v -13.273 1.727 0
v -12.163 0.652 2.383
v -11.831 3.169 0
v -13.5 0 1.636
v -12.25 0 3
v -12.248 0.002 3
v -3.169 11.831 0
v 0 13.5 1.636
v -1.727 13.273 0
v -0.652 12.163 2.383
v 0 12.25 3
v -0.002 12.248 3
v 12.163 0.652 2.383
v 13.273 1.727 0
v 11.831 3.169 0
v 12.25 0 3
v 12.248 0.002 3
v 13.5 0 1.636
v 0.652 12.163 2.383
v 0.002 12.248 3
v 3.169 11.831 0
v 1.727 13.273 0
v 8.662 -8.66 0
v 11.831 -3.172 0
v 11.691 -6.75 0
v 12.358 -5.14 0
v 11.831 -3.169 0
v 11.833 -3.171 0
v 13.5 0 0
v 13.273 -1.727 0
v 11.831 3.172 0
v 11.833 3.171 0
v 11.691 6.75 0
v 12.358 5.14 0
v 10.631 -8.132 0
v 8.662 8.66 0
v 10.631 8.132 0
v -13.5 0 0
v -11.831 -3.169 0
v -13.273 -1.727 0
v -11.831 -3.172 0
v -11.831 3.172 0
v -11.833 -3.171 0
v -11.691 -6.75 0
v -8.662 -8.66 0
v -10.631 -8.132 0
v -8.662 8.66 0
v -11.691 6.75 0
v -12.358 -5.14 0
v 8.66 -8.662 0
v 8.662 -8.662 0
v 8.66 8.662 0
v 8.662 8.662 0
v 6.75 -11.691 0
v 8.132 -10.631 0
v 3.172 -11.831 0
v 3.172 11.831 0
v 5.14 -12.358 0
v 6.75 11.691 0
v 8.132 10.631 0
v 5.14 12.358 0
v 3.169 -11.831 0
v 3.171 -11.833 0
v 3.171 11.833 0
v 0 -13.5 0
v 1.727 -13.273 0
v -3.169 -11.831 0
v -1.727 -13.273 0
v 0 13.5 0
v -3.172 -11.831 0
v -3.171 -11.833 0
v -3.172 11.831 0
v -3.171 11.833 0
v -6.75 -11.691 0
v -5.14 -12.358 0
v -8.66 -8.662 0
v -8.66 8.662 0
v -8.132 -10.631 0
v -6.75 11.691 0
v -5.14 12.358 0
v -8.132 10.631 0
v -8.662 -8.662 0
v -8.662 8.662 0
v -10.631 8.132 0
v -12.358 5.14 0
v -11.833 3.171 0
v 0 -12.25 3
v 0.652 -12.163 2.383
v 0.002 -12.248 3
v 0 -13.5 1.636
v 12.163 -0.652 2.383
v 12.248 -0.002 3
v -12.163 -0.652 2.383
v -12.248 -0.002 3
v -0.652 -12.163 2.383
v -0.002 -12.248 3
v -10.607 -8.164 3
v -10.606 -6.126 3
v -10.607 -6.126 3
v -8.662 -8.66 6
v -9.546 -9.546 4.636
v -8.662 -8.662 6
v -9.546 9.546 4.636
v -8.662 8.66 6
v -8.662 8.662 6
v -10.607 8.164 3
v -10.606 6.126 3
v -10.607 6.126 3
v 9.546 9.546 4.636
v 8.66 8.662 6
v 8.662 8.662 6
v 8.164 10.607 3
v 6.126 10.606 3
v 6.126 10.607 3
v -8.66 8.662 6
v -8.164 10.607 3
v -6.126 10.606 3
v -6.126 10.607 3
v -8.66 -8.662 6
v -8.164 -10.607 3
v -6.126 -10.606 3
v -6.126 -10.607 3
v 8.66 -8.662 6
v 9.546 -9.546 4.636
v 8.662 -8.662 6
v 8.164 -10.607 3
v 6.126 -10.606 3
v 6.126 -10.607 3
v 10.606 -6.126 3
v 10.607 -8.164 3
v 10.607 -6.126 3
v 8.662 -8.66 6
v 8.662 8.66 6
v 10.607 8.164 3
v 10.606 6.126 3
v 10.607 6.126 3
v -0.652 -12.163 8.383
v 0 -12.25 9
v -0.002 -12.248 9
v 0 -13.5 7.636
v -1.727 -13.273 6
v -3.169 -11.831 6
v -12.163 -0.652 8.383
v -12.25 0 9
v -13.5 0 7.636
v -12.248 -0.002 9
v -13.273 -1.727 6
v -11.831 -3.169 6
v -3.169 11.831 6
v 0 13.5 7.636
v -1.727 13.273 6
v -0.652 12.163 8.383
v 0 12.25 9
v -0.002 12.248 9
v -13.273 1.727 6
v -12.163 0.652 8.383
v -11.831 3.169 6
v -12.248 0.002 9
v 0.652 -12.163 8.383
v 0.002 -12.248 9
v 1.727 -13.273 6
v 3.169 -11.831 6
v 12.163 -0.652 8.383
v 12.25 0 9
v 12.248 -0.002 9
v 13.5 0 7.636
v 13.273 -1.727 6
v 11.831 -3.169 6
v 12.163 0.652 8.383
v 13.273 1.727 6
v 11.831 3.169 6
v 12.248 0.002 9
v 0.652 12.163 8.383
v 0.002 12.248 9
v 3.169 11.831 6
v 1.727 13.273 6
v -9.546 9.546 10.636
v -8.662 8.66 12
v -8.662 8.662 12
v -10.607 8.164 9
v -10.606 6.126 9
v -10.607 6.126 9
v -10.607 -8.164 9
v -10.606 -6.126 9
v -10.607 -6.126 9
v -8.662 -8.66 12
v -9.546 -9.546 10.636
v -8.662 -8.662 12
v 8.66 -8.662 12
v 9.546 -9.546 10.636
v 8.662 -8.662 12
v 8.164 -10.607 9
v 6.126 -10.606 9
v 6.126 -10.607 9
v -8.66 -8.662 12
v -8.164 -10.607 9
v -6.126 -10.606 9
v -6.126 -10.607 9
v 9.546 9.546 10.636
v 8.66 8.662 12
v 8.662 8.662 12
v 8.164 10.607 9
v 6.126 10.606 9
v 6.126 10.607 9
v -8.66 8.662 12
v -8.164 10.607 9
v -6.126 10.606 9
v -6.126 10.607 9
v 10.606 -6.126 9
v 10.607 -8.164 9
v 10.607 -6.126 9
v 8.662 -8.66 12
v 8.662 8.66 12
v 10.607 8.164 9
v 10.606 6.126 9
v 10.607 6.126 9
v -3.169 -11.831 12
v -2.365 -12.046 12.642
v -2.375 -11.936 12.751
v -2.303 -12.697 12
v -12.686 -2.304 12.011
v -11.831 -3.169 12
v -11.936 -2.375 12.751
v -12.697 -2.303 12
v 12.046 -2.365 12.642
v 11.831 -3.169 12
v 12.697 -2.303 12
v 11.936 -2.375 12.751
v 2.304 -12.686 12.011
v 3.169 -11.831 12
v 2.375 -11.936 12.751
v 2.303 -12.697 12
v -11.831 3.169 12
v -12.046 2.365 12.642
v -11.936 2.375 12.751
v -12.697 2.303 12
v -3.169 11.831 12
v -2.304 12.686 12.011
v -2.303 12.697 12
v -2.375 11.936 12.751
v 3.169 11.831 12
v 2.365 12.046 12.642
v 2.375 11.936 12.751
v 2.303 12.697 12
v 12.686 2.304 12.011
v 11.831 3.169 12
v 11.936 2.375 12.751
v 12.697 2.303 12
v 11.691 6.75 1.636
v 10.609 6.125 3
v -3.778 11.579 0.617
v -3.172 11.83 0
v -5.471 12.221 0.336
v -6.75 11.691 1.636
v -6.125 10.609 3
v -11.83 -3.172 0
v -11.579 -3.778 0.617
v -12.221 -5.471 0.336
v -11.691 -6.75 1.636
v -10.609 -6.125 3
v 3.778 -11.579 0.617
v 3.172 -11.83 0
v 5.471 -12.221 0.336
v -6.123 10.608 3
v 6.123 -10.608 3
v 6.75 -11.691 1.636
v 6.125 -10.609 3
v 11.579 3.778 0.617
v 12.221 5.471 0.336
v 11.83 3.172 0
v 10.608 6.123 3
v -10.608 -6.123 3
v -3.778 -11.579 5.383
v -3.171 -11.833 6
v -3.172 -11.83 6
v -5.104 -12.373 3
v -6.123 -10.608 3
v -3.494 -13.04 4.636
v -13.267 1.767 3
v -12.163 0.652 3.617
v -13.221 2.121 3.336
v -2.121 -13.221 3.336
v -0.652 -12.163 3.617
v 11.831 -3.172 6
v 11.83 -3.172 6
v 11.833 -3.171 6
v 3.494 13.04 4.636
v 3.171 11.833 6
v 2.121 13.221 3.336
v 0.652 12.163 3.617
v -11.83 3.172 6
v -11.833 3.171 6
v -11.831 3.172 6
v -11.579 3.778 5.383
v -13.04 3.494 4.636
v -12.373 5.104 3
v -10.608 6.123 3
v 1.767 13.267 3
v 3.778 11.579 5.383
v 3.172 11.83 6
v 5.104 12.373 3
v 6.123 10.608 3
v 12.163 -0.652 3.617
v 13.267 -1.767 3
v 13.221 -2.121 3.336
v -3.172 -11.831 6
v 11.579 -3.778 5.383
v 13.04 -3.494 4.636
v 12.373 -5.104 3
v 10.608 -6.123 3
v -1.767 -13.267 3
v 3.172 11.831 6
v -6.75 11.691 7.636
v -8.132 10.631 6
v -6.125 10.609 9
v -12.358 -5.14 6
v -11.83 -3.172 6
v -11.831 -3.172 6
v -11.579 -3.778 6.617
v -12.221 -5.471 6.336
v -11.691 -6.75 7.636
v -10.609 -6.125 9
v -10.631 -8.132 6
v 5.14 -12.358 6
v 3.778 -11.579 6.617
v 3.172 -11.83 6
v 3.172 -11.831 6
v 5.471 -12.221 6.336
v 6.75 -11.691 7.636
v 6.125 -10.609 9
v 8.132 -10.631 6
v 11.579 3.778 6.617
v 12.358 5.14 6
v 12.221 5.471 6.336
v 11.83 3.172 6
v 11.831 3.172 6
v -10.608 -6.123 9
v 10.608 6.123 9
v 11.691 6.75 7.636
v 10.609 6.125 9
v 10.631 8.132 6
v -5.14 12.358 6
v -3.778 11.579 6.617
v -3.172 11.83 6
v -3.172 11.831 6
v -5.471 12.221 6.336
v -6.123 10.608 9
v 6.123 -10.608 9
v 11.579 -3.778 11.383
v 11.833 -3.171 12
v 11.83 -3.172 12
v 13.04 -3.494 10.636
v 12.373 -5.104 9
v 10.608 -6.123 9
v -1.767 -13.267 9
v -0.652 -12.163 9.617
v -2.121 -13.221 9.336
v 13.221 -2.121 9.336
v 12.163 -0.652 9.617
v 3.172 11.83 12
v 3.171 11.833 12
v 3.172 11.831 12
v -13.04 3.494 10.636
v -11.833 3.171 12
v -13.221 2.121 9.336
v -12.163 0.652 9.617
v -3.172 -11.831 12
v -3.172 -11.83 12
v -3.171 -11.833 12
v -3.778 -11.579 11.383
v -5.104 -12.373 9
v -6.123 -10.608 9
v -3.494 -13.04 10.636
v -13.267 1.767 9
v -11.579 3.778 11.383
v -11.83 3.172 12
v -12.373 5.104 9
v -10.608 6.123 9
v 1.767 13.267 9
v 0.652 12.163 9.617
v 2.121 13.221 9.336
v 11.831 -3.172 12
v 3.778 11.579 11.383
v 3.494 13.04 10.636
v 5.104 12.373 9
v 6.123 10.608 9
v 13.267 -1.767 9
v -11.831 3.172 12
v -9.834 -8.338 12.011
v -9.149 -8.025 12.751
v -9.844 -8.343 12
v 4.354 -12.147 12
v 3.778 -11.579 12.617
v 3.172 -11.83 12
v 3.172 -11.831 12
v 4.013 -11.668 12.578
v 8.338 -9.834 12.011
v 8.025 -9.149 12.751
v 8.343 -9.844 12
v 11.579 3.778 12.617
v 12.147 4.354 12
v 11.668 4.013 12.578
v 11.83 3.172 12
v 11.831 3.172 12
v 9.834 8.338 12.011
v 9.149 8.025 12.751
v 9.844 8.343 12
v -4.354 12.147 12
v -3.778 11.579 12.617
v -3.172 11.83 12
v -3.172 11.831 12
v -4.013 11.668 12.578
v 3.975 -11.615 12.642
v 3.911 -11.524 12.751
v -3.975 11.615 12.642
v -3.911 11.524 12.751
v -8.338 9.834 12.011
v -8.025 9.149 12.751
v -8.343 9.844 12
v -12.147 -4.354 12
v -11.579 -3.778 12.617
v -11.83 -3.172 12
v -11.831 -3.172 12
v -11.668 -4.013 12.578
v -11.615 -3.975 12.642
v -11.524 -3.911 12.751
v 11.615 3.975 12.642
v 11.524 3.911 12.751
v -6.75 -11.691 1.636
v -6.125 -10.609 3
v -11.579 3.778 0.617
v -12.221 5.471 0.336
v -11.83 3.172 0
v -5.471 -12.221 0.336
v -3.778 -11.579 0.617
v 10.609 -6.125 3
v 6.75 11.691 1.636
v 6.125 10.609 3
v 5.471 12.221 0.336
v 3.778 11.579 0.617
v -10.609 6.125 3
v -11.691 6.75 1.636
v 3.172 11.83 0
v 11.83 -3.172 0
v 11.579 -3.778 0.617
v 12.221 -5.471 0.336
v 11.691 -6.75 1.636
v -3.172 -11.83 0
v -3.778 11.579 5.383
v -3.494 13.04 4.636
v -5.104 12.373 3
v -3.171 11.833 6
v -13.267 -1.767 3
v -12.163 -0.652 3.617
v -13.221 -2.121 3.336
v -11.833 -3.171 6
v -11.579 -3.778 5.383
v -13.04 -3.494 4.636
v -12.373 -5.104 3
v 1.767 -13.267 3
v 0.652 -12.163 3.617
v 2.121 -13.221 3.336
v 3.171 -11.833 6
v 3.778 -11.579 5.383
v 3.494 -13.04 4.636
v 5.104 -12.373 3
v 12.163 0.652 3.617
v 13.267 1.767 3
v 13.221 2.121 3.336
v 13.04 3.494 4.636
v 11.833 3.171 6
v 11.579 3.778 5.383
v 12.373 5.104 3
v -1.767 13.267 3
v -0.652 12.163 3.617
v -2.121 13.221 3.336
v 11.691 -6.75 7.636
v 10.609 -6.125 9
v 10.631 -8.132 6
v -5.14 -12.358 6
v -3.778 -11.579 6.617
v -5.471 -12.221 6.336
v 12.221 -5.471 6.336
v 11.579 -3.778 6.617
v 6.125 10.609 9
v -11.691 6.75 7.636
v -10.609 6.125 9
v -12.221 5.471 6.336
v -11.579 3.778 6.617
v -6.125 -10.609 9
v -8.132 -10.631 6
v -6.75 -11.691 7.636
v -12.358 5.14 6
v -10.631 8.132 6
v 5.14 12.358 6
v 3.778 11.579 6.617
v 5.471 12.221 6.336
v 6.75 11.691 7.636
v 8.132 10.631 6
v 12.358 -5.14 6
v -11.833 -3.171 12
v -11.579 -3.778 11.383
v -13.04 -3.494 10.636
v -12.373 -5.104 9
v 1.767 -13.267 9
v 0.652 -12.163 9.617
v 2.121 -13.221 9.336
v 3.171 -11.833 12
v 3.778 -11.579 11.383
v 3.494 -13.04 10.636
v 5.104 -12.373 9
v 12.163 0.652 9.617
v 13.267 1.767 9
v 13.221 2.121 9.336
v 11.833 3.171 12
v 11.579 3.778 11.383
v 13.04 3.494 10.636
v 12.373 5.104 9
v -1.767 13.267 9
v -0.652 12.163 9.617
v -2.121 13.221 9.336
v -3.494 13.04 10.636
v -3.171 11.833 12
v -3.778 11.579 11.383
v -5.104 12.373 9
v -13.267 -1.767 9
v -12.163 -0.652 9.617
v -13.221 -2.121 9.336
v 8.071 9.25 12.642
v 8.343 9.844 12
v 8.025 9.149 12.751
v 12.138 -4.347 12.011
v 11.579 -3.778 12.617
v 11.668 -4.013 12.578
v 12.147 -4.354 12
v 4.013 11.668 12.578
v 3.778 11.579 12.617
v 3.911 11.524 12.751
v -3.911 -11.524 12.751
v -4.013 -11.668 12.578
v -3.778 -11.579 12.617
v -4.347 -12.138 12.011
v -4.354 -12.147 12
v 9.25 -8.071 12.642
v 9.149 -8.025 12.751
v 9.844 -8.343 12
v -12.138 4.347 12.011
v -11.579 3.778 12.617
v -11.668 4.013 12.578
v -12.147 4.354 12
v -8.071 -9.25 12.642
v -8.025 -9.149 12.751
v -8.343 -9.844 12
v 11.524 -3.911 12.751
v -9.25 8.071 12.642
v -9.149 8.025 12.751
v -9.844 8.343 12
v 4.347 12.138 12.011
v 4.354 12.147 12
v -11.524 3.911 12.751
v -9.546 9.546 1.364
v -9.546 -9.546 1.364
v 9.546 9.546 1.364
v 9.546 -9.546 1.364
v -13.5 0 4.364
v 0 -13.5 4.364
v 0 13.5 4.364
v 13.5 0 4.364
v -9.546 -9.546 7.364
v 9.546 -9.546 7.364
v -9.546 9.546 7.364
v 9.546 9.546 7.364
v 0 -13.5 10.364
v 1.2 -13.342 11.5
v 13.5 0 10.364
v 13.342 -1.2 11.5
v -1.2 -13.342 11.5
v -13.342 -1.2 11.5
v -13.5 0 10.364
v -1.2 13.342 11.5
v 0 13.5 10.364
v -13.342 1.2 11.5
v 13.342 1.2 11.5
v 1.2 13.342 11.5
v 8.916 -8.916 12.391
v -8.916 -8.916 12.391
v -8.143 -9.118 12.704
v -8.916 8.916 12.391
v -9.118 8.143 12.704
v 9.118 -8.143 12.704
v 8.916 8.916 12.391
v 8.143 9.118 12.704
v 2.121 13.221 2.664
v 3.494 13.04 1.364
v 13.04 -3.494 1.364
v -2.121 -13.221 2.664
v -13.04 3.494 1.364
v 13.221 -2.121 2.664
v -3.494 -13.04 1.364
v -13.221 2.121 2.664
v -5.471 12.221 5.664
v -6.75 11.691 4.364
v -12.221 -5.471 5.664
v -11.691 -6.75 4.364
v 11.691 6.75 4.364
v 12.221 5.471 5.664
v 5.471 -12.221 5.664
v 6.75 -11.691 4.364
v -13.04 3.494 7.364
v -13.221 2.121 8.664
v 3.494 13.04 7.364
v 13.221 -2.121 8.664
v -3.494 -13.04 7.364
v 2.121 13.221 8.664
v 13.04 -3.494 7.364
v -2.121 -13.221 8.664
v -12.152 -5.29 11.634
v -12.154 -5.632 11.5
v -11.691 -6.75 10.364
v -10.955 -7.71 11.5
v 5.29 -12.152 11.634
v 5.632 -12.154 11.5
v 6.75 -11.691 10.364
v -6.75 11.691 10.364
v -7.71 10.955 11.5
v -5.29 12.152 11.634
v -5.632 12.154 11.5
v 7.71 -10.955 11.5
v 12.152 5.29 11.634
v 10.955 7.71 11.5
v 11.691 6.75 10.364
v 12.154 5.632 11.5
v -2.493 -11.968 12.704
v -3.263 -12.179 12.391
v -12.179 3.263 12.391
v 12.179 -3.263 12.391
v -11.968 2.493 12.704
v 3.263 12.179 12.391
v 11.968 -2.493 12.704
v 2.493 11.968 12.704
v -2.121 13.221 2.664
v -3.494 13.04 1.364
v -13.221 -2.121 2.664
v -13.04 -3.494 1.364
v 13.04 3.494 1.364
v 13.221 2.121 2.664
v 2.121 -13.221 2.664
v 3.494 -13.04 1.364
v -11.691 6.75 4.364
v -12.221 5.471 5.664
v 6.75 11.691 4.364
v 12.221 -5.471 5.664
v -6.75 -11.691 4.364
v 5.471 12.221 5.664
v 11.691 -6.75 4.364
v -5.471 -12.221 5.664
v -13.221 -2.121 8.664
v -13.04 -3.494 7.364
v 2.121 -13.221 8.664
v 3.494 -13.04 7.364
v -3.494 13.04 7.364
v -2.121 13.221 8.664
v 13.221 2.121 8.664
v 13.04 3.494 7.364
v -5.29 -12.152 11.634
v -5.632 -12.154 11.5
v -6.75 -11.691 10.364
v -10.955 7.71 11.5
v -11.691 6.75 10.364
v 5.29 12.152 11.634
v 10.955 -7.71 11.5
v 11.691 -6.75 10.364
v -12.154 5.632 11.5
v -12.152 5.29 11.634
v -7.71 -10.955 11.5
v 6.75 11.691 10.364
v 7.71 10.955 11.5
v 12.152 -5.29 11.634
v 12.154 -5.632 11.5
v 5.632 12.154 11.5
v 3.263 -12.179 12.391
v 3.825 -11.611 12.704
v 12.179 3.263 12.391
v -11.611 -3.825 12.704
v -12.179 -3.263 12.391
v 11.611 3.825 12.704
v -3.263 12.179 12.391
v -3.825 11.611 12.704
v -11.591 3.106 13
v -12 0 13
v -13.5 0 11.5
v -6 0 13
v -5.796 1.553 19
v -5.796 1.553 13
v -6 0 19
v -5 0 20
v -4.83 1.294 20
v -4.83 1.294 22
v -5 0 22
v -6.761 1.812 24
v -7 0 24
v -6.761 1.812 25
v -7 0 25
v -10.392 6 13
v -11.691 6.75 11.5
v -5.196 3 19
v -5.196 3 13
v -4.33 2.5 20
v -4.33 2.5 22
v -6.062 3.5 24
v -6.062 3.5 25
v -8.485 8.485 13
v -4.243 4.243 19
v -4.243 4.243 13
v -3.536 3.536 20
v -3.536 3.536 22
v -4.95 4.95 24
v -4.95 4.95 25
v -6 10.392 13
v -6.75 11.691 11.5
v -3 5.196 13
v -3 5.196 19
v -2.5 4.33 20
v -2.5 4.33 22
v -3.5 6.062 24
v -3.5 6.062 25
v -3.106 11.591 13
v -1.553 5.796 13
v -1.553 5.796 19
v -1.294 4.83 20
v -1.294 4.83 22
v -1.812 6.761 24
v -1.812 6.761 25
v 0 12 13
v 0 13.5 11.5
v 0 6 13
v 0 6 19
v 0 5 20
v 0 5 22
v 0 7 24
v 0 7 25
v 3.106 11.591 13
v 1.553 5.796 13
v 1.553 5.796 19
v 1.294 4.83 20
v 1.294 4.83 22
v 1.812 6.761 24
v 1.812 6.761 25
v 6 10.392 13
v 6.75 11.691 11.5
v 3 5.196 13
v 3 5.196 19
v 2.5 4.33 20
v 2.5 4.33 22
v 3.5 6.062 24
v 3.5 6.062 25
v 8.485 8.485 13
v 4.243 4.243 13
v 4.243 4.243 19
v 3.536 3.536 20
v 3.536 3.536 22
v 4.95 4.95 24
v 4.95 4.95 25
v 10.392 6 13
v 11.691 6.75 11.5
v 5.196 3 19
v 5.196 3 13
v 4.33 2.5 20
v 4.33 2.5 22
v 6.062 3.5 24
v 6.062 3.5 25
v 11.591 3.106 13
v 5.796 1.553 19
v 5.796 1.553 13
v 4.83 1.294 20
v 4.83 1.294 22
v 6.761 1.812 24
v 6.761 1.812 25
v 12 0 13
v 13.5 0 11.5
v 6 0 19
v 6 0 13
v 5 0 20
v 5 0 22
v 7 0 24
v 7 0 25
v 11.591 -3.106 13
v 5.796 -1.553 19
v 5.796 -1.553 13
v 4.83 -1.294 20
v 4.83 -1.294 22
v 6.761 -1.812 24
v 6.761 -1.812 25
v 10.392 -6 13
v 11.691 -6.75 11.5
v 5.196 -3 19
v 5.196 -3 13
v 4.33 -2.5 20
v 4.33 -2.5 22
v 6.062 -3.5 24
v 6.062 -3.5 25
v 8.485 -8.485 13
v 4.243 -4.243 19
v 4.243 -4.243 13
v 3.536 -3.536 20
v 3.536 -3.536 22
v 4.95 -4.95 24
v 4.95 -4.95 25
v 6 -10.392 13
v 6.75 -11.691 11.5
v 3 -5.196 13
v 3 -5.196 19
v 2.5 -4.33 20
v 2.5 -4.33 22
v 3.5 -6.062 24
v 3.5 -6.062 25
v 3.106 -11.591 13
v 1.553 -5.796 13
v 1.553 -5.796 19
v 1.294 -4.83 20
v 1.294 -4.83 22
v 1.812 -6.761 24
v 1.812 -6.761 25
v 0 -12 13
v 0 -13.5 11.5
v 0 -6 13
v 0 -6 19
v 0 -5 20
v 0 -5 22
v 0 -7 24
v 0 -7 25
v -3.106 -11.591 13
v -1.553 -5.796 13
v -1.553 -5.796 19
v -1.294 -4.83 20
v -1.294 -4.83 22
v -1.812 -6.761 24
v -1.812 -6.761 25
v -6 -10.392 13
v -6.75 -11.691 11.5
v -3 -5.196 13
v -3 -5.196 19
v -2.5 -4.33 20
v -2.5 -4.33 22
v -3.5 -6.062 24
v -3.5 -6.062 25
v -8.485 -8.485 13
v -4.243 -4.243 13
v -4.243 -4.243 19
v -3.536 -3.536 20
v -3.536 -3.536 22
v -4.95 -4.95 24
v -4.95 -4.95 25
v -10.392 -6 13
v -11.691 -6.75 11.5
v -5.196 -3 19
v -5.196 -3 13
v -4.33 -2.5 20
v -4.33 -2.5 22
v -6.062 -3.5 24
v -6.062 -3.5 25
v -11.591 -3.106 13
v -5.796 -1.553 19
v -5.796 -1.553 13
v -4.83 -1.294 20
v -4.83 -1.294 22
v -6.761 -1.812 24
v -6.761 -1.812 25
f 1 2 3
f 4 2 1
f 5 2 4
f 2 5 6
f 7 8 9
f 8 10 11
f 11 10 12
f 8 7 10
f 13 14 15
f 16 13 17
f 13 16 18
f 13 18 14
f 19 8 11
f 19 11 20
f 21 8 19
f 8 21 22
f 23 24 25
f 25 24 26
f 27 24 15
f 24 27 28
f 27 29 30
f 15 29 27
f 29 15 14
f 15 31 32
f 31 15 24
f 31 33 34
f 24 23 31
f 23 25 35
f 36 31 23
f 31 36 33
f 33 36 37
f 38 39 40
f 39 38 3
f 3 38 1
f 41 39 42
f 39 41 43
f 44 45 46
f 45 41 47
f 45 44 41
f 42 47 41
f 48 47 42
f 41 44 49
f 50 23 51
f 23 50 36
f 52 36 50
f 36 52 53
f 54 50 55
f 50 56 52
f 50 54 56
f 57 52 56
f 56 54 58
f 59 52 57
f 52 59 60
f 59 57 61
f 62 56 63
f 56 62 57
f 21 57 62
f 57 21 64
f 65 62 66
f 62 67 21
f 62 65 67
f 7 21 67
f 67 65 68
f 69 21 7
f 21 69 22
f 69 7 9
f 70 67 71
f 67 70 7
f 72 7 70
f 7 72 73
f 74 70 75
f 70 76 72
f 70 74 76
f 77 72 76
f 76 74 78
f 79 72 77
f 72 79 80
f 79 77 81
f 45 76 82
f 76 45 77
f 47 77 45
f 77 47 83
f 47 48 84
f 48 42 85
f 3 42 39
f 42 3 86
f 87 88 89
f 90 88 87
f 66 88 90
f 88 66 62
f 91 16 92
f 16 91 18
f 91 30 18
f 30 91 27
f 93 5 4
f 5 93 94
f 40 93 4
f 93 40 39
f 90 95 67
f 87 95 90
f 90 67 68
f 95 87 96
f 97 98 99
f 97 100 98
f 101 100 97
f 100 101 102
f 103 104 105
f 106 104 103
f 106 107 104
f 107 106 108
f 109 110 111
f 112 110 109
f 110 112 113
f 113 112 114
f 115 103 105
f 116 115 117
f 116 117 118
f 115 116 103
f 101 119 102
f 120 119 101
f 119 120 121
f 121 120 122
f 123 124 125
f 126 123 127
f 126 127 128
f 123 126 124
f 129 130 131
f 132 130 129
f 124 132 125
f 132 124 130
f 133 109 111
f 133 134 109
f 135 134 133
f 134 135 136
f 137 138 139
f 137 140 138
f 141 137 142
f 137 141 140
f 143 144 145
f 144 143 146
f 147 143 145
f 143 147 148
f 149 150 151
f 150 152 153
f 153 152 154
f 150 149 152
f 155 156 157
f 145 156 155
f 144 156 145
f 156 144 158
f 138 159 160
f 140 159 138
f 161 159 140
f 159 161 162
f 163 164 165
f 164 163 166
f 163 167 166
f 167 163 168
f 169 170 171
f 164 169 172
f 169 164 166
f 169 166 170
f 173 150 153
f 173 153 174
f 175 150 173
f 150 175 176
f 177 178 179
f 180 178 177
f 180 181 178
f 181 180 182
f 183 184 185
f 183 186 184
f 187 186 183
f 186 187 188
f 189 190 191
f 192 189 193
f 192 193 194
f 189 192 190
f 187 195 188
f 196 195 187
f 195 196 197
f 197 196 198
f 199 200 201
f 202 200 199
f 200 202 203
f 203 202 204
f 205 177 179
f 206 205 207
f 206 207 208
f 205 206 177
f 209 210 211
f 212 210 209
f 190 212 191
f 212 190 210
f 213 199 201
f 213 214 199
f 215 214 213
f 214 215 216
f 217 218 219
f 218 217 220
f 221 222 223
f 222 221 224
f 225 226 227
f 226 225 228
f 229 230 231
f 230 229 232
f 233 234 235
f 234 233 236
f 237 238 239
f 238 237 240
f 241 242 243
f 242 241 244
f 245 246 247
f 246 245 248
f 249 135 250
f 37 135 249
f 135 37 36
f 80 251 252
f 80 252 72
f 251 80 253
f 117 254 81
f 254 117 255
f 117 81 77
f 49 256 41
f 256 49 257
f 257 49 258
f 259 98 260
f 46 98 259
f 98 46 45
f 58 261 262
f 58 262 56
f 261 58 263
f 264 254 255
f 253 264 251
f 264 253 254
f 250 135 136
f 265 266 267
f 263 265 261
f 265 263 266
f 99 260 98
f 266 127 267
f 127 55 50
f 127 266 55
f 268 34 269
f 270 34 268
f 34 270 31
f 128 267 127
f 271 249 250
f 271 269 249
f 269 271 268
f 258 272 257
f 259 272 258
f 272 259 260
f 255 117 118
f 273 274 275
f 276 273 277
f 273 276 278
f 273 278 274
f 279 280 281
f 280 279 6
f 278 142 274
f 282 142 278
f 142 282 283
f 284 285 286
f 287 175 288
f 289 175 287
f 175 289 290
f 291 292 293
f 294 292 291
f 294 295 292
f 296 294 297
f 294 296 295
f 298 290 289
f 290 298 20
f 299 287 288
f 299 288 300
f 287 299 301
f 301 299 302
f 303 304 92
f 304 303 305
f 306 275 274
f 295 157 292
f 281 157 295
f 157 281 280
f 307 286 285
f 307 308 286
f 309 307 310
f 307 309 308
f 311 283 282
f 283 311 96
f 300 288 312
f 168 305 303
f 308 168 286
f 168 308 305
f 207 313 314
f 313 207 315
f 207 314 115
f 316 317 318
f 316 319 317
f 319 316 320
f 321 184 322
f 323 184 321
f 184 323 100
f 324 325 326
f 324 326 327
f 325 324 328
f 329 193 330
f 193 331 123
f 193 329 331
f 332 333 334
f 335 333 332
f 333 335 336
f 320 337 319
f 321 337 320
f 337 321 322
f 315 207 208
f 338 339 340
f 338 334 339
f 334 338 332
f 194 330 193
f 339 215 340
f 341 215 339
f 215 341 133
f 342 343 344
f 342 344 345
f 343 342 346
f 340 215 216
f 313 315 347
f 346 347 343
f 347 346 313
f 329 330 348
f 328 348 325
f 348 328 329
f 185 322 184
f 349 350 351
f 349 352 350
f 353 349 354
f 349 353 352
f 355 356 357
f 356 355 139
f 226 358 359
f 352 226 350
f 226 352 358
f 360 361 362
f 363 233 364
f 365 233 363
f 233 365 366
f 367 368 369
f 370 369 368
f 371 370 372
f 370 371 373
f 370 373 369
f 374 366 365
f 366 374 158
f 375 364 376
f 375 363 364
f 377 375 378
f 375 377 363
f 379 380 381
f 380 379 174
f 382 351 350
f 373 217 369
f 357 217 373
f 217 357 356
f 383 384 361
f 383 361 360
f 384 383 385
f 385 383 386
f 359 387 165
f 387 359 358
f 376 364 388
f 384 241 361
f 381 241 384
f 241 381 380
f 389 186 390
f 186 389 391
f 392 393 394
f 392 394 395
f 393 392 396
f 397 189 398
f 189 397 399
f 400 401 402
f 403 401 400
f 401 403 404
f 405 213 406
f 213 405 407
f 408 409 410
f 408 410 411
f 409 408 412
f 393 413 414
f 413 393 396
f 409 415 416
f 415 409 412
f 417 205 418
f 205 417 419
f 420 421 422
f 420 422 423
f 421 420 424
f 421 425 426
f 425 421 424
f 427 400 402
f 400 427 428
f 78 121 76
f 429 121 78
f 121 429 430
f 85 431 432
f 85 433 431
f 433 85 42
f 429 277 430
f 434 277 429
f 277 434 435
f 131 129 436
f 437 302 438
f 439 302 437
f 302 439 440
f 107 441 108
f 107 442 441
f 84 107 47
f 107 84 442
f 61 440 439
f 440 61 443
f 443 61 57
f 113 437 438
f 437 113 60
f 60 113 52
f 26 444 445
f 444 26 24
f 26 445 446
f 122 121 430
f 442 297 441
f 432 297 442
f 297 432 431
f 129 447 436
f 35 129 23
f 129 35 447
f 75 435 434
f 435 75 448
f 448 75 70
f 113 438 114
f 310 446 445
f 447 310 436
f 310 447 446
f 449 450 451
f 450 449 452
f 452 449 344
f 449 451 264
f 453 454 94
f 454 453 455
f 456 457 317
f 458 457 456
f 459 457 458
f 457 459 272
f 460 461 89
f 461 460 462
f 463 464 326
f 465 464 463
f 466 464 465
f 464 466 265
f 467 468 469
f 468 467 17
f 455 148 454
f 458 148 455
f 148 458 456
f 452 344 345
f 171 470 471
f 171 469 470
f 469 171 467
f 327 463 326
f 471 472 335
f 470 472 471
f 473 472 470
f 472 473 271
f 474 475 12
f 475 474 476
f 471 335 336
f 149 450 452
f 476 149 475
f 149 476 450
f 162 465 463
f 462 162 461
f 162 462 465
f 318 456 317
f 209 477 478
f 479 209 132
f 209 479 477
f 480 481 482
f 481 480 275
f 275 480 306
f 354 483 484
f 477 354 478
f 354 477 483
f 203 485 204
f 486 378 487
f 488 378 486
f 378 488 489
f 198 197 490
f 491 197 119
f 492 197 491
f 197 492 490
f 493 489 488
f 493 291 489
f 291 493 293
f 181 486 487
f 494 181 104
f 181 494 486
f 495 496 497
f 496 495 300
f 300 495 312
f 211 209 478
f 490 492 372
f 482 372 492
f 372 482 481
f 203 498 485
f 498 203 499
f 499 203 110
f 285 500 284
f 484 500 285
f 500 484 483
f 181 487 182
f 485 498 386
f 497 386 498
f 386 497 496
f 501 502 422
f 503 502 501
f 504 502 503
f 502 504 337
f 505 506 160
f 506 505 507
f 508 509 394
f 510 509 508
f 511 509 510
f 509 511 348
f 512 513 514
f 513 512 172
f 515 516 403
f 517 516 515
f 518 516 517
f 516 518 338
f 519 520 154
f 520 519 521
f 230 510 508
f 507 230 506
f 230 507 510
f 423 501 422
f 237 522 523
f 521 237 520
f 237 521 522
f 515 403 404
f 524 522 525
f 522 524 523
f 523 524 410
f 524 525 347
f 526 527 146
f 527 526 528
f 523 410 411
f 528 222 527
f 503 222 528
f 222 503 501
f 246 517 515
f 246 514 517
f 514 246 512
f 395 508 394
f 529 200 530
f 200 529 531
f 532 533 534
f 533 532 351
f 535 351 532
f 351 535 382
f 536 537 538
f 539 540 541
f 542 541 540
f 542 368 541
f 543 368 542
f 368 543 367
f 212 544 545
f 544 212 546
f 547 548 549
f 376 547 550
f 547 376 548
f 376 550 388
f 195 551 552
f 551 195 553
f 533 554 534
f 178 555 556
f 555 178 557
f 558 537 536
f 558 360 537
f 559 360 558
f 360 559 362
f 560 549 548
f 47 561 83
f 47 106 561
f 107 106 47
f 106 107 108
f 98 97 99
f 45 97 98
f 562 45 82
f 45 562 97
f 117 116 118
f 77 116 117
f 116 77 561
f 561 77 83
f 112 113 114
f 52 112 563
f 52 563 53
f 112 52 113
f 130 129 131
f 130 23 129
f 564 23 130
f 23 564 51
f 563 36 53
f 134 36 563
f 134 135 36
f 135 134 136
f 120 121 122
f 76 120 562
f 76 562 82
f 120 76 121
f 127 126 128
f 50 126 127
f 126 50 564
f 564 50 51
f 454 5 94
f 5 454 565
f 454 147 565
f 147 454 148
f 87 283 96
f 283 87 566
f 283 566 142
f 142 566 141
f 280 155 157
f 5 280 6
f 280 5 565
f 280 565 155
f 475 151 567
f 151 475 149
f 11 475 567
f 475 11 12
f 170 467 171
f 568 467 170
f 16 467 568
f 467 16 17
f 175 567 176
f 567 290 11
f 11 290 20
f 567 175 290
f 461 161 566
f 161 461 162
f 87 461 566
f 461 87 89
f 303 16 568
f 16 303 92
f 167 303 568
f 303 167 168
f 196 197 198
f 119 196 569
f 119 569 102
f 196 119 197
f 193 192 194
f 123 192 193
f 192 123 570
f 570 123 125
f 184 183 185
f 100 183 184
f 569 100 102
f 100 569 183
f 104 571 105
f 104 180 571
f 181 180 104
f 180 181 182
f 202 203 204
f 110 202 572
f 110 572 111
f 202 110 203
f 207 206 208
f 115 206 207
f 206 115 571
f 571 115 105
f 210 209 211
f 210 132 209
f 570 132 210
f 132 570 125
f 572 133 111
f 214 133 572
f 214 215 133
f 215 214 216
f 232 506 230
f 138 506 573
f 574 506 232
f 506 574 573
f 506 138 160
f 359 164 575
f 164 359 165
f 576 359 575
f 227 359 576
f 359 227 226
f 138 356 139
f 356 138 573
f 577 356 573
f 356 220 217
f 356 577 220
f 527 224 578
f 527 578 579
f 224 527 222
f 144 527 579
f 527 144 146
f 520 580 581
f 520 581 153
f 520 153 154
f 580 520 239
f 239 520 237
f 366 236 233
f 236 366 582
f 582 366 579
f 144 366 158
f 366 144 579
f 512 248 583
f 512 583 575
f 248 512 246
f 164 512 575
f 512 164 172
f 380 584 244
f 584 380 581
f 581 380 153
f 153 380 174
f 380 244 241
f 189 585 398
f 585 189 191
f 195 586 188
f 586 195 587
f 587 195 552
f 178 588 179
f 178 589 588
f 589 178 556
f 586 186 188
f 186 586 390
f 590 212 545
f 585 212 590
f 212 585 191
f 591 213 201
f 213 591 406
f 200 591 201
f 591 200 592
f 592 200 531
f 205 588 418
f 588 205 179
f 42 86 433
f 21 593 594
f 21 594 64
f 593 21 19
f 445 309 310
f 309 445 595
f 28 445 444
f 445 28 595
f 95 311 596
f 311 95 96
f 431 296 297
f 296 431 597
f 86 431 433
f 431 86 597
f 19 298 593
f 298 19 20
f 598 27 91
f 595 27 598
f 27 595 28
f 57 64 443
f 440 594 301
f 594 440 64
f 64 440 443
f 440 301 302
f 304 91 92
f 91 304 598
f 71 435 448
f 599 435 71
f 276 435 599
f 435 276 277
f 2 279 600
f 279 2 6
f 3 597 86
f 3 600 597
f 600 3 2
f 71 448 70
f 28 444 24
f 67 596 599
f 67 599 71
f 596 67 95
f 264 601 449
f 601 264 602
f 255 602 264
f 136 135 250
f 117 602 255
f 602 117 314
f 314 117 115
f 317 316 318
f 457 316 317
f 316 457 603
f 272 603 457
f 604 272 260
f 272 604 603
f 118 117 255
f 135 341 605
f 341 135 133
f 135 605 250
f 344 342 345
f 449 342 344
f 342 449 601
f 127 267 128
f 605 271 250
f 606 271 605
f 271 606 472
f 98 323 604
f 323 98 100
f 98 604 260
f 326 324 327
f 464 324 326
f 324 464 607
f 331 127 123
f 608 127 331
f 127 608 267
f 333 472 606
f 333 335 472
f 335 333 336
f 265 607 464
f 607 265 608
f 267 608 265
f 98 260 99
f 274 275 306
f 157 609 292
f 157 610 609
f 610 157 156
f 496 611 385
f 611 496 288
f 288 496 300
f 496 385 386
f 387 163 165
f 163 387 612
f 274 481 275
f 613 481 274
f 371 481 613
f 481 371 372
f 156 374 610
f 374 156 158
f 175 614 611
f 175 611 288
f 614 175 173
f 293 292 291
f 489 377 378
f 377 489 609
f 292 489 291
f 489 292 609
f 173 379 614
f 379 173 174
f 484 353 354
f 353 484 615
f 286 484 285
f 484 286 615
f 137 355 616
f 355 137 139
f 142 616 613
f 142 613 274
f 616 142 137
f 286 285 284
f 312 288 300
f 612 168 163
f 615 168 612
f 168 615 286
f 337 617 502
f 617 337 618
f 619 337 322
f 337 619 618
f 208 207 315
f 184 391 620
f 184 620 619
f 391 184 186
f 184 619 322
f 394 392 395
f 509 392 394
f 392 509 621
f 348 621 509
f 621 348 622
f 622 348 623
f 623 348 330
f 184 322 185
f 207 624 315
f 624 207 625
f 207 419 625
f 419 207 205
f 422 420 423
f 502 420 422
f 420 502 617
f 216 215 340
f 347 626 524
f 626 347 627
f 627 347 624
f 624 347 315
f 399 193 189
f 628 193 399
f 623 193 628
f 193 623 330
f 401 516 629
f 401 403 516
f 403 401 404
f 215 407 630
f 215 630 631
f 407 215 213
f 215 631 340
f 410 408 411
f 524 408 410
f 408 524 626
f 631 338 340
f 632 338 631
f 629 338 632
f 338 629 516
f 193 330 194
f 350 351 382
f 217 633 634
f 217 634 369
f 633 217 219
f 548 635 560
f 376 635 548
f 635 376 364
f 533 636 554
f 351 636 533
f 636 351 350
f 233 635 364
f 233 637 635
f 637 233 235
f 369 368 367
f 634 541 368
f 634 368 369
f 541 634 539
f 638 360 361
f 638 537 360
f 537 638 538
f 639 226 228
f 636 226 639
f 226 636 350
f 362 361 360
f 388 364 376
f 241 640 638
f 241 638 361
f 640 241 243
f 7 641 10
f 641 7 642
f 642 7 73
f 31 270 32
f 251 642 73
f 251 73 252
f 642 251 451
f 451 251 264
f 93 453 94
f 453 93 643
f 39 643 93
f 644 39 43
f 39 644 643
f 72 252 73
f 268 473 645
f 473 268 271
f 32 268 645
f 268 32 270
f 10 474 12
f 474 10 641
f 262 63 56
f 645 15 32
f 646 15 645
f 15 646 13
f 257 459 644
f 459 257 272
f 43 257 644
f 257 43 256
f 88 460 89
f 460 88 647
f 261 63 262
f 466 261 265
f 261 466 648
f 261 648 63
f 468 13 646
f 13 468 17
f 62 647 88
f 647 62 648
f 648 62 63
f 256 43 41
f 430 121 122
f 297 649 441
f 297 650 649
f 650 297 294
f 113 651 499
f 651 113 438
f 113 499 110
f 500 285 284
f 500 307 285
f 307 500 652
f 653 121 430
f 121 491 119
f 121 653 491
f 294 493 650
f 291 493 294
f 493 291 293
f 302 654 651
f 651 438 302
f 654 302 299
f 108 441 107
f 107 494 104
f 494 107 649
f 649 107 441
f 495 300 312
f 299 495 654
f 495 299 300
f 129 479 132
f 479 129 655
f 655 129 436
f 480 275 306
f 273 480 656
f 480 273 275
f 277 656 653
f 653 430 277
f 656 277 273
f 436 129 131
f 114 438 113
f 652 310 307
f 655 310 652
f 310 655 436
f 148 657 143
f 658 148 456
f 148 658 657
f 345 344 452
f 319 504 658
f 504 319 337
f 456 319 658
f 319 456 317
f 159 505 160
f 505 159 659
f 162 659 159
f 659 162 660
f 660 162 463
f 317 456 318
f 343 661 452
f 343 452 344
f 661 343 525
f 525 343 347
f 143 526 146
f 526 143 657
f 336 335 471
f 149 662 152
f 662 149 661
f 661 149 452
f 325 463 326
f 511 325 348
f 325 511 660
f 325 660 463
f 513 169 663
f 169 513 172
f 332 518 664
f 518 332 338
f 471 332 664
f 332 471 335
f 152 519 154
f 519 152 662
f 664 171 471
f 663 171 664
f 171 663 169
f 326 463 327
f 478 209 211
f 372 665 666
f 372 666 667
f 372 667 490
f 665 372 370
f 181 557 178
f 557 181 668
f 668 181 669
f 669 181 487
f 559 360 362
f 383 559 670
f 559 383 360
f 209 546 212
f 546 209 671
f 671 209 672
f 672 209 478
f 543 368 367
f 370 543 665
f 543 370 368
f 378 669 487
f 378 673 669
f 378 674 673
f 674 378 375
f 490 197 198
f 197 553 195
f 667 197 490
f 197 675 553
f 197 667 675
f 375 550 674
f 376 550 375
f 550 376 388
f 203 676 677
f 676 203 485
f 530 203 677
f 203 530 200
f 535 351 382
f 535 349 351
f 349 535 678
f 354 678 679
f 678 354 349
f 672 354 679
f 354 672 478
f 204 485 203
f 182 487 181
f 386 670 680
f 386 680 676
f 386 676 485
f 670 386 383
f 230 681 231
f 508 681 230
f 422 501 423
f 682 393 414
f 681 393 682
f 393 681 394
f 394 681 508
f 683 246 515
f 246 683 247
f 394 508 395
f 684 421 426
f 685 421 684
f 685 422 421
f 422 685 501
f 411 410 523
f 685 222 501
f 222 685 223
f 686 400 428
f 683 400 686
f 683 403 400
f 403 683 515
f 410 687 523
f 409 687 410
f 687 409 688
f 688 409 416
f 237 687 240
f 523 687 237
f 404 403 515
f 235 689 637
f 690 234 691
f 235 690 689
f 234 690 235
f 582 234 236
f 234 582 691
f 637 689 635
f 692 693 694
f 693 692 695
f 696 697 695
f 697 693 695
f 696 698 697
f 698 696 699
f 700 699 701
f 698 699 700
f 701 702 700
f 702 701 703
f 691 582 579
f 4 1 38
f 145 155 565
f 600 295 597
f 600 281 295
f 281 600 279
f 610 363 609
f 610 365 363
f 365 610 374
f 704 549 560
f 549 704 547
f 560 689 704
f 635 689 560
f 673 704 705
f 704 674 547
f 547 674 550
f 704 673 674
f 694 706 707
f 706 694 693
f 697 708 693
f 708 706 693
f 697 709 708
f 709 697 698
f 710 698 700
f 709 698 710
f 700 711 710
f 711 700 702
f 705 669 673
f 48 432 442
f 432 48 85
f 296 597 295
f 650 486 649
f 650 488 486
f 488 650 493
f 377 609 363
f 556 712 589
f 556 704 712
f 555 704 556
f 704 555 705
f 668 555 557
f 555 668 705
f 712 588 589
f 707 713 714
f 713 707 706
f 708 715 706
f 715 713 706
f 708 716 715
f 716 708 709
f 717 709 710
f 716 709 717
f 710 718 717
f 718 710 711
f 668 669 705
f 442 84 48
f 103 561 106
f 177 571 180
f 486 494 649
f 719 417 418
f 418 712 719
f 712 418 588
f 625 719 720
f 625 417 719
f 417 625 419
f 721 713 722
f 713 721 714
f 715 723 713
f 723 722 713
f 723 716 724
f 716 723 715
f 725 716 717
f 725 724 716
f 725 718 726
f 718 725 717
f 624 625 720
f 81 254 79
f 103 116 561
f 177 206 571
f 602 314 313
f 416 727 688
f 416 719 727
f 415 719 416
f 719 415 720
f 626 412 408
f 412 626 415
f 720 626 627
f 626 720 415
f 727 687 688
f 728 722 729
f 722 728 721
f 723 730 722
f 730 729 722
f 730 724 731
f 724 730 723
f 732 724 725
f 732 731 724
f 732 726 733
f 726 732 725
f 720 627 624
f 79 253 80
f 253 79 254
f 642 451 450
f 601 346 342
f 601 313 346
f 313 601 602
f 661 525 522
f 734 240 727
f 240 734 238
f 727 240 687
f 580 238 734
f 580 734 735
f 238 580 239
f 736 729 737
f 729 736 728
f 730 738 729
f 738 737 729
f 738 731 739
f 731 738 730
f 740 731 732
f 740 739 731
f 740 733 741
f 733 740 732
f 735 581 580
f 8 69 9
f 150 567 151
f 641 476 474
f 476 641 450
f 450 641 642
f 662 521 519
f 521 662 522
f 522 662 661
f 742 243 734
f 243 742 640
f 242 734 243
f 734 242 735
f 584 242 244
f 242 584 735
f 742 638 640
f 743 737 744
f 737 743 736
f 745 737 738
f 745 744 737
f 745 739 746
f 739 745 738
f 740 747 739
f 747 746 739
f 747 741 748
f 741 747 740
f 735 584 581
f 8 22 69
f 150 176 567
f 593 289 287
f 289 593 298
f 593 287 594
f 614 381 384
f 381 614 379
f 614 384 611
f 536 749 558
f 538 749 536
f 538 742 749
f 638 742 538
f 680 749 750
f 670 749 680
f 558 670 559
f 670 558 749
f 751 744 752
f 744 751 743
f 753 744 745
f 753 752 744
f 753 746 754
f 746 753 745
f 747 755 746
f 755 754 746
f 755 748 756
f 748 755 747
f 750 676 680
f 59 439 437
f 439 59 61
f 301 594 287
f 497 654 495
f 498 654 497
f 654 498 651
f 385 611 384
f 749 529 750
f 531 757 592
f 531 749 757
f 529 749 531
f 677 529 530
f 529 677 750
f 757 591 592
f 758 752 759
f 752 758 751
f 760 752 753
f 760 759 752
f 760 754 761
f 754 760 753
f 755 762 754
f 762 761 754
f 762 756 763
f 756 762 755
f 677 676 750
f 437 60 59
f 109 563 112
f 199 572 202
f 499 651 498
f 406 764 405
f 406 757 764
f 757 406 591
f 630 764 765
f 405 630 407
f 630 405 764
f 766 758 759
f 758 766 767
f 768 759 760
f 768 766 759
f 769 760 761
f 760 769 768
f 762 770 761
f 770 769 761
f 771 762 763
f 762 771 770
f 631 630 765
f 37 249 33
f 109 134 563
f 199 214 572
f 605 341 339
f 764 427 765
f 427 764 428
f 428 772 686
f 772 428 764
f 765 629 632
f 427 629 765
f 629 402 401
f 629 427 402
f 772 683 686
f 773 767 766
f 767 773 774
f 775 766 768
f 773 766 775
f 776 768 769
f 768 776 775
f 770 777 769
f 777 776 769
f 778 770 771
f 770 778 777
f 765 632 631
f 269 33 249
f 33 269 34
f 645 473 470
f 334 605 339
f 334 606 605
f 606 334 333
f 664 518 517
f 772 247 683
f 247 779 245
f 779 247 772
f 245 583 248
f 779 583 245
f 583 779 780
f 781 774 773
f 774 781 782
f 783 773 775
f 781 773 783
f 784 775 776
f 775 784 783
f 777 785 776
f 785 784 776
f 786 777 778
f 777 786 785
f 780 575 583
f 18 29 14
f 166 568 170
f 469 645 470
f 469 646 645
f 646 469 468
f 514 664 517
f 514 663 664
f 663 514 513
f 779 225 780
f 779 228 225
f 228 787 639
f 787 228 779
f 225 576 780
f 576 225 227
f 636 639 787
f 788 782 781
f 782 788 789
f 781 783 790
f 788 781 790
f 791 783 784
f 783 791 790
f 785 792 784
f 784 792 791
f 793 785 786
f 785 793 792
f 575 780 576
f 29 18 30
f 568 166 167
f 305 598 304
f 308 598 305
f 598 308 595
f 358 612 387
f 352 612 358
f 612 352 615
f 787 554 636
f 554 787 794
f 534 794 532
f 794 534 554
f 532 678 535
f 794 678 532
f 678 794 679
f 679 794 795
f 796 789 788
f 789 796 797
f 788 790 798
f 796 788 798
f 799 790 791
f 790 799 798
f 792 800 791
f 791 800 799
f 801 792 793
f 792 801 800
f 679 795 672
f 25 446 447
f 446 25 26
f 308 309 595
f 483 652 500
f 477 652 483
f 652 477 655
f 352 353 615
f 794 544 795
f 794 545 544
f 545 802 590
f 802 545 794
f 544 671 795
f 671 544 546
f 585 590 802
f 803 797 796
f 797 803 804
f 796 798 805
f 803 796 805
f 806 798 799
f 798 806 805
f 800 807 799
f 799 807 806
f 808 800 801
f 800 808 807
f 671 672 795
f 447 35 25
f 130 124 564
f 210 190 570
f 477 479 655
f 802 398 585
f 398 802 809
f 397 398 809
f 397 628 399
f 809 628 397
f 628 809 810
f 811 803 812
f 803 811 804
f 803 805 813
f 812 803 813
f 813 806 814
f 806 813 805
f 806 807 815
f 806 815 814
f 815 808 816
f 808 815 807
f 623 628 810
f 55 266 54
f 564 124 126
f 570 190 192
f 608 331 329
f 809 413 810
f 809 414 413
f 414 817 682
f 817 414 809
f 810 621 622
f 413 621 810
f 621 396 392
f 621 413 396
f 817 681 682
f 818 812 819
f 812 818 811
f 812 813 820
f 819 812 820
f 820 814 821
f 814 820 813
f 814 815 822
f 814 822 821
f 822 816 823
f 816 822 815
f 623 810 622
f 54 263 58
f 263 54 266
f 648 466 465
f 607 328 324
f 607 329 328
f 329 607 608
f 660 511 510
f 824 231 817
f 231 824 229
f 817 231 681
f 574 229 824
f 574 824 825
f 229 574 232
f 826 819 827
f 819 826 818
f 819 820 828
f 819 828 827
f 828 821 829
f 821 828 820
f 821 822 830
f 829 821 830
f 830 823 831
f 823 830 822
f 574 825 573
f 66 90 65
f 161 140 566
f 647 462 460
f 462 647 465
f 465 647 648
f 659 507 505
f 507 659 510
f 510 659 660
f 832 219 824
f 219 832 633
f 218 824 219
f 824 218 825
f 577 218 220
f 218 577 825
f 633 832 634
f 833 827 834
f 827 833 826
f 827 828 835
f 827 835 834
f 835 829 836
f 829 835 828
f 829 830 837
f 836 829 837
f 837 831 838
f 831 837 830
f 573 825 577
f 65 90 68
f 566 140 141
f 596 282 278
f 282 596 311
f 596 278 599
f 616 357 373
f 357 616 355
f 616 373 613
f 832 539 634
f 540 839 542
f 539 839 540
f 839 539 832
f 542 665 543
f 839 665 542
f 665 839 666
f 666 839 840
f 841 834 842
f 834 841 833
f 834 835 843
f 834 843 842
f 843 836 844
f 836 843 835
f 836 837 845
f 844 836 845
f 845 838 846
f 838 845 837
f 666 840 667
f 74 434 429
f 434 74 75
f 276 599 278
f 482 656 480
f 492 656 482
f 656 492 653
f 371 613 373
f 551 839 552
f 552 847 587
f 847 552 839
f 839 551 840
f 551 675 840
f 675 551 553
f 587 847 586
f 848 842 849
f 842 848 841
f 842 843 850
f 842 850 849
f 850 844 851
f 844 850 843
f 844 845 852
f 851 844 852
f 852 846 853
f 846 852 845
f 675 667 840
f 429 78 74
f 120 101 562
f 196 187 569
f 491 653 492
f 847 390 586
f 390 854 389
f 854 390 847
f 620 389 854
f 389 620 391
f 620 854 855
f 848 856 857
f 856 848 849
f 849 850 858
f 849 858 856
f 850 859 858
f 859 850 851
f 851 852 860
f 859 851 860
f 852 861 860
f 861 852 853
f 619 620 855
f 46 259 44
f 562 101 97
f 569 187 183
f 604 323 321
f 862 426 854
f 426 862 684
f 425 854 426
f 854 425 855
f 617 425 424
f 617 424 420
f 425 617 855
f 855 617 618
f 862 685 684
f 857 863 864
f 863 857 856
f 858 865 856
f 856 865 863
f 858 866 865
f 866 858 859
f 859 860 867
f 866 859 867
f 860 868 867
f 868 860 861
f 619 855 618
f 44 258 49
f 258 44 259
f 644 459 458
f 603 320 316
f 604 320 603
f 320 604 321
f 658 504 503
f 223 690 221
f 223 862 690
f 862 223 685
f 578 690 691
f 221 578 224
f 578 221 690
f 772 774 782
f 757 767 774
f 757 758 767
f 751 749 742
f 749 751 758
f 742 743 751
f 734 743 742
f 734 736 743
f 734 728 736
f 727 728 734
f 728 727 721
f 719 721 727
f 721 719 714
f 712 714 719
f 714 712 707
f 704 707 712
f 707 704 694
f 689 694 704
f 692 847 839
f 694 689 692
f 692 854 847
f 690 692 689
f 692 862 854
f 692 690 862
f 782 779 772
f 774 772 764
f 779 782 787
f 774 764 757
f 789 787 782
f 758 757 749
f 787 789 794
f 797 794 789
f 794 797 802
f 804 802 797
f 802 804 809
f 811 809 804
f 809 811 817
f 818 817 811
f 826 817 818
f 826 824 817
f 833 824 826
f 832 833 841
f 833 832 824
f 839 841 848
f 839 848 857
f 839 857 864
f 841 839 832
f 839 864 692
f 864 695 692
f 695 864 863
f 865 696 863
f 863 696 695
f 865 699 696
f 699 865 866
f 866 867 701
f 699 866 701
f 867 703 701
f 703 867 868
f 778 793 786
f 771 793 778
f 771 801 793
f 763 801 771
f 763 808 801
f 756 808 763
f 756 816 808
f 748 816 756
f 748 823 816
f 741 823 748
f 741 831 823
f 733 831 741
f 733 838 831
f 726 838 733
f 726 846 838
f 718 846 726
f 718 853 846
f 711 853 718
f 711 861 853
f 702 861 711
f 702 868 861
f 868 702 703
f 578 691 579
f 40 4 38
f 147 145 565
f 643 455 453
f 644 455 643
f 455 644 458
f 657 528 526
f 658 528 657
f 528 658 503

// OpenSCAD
// Create captive knob
intersection() {
rotate_extrude(convexity = 5, $fn = 24) difference() {
square([13.5, 25]);
hull() for(i = [20, 22]) translate([5, i, 0]) rotate(-45)
square(20);
translate([6, 13, 0]) square(8);
translate([7, 20, 0]) square(20);
}
union() {
translate([0, 0, 70]) cube(100, center = true);
for(i = [0:30:90-1], j = [0:3:20-1]) translate([0, 0, j])
rotate(i + j * 45 / 3) cylinder(r = 15, r2 = 12.25, h = 3, $fn = 4);
for(i = [0:30:90-1], j = [0:3:20-1]) translate([0, 0, j])
rotate(i + j * 45 / 3 + 45) cylinder(r = 15, r1 = 12.25, h = 3,
$fn = 4);
}
}
